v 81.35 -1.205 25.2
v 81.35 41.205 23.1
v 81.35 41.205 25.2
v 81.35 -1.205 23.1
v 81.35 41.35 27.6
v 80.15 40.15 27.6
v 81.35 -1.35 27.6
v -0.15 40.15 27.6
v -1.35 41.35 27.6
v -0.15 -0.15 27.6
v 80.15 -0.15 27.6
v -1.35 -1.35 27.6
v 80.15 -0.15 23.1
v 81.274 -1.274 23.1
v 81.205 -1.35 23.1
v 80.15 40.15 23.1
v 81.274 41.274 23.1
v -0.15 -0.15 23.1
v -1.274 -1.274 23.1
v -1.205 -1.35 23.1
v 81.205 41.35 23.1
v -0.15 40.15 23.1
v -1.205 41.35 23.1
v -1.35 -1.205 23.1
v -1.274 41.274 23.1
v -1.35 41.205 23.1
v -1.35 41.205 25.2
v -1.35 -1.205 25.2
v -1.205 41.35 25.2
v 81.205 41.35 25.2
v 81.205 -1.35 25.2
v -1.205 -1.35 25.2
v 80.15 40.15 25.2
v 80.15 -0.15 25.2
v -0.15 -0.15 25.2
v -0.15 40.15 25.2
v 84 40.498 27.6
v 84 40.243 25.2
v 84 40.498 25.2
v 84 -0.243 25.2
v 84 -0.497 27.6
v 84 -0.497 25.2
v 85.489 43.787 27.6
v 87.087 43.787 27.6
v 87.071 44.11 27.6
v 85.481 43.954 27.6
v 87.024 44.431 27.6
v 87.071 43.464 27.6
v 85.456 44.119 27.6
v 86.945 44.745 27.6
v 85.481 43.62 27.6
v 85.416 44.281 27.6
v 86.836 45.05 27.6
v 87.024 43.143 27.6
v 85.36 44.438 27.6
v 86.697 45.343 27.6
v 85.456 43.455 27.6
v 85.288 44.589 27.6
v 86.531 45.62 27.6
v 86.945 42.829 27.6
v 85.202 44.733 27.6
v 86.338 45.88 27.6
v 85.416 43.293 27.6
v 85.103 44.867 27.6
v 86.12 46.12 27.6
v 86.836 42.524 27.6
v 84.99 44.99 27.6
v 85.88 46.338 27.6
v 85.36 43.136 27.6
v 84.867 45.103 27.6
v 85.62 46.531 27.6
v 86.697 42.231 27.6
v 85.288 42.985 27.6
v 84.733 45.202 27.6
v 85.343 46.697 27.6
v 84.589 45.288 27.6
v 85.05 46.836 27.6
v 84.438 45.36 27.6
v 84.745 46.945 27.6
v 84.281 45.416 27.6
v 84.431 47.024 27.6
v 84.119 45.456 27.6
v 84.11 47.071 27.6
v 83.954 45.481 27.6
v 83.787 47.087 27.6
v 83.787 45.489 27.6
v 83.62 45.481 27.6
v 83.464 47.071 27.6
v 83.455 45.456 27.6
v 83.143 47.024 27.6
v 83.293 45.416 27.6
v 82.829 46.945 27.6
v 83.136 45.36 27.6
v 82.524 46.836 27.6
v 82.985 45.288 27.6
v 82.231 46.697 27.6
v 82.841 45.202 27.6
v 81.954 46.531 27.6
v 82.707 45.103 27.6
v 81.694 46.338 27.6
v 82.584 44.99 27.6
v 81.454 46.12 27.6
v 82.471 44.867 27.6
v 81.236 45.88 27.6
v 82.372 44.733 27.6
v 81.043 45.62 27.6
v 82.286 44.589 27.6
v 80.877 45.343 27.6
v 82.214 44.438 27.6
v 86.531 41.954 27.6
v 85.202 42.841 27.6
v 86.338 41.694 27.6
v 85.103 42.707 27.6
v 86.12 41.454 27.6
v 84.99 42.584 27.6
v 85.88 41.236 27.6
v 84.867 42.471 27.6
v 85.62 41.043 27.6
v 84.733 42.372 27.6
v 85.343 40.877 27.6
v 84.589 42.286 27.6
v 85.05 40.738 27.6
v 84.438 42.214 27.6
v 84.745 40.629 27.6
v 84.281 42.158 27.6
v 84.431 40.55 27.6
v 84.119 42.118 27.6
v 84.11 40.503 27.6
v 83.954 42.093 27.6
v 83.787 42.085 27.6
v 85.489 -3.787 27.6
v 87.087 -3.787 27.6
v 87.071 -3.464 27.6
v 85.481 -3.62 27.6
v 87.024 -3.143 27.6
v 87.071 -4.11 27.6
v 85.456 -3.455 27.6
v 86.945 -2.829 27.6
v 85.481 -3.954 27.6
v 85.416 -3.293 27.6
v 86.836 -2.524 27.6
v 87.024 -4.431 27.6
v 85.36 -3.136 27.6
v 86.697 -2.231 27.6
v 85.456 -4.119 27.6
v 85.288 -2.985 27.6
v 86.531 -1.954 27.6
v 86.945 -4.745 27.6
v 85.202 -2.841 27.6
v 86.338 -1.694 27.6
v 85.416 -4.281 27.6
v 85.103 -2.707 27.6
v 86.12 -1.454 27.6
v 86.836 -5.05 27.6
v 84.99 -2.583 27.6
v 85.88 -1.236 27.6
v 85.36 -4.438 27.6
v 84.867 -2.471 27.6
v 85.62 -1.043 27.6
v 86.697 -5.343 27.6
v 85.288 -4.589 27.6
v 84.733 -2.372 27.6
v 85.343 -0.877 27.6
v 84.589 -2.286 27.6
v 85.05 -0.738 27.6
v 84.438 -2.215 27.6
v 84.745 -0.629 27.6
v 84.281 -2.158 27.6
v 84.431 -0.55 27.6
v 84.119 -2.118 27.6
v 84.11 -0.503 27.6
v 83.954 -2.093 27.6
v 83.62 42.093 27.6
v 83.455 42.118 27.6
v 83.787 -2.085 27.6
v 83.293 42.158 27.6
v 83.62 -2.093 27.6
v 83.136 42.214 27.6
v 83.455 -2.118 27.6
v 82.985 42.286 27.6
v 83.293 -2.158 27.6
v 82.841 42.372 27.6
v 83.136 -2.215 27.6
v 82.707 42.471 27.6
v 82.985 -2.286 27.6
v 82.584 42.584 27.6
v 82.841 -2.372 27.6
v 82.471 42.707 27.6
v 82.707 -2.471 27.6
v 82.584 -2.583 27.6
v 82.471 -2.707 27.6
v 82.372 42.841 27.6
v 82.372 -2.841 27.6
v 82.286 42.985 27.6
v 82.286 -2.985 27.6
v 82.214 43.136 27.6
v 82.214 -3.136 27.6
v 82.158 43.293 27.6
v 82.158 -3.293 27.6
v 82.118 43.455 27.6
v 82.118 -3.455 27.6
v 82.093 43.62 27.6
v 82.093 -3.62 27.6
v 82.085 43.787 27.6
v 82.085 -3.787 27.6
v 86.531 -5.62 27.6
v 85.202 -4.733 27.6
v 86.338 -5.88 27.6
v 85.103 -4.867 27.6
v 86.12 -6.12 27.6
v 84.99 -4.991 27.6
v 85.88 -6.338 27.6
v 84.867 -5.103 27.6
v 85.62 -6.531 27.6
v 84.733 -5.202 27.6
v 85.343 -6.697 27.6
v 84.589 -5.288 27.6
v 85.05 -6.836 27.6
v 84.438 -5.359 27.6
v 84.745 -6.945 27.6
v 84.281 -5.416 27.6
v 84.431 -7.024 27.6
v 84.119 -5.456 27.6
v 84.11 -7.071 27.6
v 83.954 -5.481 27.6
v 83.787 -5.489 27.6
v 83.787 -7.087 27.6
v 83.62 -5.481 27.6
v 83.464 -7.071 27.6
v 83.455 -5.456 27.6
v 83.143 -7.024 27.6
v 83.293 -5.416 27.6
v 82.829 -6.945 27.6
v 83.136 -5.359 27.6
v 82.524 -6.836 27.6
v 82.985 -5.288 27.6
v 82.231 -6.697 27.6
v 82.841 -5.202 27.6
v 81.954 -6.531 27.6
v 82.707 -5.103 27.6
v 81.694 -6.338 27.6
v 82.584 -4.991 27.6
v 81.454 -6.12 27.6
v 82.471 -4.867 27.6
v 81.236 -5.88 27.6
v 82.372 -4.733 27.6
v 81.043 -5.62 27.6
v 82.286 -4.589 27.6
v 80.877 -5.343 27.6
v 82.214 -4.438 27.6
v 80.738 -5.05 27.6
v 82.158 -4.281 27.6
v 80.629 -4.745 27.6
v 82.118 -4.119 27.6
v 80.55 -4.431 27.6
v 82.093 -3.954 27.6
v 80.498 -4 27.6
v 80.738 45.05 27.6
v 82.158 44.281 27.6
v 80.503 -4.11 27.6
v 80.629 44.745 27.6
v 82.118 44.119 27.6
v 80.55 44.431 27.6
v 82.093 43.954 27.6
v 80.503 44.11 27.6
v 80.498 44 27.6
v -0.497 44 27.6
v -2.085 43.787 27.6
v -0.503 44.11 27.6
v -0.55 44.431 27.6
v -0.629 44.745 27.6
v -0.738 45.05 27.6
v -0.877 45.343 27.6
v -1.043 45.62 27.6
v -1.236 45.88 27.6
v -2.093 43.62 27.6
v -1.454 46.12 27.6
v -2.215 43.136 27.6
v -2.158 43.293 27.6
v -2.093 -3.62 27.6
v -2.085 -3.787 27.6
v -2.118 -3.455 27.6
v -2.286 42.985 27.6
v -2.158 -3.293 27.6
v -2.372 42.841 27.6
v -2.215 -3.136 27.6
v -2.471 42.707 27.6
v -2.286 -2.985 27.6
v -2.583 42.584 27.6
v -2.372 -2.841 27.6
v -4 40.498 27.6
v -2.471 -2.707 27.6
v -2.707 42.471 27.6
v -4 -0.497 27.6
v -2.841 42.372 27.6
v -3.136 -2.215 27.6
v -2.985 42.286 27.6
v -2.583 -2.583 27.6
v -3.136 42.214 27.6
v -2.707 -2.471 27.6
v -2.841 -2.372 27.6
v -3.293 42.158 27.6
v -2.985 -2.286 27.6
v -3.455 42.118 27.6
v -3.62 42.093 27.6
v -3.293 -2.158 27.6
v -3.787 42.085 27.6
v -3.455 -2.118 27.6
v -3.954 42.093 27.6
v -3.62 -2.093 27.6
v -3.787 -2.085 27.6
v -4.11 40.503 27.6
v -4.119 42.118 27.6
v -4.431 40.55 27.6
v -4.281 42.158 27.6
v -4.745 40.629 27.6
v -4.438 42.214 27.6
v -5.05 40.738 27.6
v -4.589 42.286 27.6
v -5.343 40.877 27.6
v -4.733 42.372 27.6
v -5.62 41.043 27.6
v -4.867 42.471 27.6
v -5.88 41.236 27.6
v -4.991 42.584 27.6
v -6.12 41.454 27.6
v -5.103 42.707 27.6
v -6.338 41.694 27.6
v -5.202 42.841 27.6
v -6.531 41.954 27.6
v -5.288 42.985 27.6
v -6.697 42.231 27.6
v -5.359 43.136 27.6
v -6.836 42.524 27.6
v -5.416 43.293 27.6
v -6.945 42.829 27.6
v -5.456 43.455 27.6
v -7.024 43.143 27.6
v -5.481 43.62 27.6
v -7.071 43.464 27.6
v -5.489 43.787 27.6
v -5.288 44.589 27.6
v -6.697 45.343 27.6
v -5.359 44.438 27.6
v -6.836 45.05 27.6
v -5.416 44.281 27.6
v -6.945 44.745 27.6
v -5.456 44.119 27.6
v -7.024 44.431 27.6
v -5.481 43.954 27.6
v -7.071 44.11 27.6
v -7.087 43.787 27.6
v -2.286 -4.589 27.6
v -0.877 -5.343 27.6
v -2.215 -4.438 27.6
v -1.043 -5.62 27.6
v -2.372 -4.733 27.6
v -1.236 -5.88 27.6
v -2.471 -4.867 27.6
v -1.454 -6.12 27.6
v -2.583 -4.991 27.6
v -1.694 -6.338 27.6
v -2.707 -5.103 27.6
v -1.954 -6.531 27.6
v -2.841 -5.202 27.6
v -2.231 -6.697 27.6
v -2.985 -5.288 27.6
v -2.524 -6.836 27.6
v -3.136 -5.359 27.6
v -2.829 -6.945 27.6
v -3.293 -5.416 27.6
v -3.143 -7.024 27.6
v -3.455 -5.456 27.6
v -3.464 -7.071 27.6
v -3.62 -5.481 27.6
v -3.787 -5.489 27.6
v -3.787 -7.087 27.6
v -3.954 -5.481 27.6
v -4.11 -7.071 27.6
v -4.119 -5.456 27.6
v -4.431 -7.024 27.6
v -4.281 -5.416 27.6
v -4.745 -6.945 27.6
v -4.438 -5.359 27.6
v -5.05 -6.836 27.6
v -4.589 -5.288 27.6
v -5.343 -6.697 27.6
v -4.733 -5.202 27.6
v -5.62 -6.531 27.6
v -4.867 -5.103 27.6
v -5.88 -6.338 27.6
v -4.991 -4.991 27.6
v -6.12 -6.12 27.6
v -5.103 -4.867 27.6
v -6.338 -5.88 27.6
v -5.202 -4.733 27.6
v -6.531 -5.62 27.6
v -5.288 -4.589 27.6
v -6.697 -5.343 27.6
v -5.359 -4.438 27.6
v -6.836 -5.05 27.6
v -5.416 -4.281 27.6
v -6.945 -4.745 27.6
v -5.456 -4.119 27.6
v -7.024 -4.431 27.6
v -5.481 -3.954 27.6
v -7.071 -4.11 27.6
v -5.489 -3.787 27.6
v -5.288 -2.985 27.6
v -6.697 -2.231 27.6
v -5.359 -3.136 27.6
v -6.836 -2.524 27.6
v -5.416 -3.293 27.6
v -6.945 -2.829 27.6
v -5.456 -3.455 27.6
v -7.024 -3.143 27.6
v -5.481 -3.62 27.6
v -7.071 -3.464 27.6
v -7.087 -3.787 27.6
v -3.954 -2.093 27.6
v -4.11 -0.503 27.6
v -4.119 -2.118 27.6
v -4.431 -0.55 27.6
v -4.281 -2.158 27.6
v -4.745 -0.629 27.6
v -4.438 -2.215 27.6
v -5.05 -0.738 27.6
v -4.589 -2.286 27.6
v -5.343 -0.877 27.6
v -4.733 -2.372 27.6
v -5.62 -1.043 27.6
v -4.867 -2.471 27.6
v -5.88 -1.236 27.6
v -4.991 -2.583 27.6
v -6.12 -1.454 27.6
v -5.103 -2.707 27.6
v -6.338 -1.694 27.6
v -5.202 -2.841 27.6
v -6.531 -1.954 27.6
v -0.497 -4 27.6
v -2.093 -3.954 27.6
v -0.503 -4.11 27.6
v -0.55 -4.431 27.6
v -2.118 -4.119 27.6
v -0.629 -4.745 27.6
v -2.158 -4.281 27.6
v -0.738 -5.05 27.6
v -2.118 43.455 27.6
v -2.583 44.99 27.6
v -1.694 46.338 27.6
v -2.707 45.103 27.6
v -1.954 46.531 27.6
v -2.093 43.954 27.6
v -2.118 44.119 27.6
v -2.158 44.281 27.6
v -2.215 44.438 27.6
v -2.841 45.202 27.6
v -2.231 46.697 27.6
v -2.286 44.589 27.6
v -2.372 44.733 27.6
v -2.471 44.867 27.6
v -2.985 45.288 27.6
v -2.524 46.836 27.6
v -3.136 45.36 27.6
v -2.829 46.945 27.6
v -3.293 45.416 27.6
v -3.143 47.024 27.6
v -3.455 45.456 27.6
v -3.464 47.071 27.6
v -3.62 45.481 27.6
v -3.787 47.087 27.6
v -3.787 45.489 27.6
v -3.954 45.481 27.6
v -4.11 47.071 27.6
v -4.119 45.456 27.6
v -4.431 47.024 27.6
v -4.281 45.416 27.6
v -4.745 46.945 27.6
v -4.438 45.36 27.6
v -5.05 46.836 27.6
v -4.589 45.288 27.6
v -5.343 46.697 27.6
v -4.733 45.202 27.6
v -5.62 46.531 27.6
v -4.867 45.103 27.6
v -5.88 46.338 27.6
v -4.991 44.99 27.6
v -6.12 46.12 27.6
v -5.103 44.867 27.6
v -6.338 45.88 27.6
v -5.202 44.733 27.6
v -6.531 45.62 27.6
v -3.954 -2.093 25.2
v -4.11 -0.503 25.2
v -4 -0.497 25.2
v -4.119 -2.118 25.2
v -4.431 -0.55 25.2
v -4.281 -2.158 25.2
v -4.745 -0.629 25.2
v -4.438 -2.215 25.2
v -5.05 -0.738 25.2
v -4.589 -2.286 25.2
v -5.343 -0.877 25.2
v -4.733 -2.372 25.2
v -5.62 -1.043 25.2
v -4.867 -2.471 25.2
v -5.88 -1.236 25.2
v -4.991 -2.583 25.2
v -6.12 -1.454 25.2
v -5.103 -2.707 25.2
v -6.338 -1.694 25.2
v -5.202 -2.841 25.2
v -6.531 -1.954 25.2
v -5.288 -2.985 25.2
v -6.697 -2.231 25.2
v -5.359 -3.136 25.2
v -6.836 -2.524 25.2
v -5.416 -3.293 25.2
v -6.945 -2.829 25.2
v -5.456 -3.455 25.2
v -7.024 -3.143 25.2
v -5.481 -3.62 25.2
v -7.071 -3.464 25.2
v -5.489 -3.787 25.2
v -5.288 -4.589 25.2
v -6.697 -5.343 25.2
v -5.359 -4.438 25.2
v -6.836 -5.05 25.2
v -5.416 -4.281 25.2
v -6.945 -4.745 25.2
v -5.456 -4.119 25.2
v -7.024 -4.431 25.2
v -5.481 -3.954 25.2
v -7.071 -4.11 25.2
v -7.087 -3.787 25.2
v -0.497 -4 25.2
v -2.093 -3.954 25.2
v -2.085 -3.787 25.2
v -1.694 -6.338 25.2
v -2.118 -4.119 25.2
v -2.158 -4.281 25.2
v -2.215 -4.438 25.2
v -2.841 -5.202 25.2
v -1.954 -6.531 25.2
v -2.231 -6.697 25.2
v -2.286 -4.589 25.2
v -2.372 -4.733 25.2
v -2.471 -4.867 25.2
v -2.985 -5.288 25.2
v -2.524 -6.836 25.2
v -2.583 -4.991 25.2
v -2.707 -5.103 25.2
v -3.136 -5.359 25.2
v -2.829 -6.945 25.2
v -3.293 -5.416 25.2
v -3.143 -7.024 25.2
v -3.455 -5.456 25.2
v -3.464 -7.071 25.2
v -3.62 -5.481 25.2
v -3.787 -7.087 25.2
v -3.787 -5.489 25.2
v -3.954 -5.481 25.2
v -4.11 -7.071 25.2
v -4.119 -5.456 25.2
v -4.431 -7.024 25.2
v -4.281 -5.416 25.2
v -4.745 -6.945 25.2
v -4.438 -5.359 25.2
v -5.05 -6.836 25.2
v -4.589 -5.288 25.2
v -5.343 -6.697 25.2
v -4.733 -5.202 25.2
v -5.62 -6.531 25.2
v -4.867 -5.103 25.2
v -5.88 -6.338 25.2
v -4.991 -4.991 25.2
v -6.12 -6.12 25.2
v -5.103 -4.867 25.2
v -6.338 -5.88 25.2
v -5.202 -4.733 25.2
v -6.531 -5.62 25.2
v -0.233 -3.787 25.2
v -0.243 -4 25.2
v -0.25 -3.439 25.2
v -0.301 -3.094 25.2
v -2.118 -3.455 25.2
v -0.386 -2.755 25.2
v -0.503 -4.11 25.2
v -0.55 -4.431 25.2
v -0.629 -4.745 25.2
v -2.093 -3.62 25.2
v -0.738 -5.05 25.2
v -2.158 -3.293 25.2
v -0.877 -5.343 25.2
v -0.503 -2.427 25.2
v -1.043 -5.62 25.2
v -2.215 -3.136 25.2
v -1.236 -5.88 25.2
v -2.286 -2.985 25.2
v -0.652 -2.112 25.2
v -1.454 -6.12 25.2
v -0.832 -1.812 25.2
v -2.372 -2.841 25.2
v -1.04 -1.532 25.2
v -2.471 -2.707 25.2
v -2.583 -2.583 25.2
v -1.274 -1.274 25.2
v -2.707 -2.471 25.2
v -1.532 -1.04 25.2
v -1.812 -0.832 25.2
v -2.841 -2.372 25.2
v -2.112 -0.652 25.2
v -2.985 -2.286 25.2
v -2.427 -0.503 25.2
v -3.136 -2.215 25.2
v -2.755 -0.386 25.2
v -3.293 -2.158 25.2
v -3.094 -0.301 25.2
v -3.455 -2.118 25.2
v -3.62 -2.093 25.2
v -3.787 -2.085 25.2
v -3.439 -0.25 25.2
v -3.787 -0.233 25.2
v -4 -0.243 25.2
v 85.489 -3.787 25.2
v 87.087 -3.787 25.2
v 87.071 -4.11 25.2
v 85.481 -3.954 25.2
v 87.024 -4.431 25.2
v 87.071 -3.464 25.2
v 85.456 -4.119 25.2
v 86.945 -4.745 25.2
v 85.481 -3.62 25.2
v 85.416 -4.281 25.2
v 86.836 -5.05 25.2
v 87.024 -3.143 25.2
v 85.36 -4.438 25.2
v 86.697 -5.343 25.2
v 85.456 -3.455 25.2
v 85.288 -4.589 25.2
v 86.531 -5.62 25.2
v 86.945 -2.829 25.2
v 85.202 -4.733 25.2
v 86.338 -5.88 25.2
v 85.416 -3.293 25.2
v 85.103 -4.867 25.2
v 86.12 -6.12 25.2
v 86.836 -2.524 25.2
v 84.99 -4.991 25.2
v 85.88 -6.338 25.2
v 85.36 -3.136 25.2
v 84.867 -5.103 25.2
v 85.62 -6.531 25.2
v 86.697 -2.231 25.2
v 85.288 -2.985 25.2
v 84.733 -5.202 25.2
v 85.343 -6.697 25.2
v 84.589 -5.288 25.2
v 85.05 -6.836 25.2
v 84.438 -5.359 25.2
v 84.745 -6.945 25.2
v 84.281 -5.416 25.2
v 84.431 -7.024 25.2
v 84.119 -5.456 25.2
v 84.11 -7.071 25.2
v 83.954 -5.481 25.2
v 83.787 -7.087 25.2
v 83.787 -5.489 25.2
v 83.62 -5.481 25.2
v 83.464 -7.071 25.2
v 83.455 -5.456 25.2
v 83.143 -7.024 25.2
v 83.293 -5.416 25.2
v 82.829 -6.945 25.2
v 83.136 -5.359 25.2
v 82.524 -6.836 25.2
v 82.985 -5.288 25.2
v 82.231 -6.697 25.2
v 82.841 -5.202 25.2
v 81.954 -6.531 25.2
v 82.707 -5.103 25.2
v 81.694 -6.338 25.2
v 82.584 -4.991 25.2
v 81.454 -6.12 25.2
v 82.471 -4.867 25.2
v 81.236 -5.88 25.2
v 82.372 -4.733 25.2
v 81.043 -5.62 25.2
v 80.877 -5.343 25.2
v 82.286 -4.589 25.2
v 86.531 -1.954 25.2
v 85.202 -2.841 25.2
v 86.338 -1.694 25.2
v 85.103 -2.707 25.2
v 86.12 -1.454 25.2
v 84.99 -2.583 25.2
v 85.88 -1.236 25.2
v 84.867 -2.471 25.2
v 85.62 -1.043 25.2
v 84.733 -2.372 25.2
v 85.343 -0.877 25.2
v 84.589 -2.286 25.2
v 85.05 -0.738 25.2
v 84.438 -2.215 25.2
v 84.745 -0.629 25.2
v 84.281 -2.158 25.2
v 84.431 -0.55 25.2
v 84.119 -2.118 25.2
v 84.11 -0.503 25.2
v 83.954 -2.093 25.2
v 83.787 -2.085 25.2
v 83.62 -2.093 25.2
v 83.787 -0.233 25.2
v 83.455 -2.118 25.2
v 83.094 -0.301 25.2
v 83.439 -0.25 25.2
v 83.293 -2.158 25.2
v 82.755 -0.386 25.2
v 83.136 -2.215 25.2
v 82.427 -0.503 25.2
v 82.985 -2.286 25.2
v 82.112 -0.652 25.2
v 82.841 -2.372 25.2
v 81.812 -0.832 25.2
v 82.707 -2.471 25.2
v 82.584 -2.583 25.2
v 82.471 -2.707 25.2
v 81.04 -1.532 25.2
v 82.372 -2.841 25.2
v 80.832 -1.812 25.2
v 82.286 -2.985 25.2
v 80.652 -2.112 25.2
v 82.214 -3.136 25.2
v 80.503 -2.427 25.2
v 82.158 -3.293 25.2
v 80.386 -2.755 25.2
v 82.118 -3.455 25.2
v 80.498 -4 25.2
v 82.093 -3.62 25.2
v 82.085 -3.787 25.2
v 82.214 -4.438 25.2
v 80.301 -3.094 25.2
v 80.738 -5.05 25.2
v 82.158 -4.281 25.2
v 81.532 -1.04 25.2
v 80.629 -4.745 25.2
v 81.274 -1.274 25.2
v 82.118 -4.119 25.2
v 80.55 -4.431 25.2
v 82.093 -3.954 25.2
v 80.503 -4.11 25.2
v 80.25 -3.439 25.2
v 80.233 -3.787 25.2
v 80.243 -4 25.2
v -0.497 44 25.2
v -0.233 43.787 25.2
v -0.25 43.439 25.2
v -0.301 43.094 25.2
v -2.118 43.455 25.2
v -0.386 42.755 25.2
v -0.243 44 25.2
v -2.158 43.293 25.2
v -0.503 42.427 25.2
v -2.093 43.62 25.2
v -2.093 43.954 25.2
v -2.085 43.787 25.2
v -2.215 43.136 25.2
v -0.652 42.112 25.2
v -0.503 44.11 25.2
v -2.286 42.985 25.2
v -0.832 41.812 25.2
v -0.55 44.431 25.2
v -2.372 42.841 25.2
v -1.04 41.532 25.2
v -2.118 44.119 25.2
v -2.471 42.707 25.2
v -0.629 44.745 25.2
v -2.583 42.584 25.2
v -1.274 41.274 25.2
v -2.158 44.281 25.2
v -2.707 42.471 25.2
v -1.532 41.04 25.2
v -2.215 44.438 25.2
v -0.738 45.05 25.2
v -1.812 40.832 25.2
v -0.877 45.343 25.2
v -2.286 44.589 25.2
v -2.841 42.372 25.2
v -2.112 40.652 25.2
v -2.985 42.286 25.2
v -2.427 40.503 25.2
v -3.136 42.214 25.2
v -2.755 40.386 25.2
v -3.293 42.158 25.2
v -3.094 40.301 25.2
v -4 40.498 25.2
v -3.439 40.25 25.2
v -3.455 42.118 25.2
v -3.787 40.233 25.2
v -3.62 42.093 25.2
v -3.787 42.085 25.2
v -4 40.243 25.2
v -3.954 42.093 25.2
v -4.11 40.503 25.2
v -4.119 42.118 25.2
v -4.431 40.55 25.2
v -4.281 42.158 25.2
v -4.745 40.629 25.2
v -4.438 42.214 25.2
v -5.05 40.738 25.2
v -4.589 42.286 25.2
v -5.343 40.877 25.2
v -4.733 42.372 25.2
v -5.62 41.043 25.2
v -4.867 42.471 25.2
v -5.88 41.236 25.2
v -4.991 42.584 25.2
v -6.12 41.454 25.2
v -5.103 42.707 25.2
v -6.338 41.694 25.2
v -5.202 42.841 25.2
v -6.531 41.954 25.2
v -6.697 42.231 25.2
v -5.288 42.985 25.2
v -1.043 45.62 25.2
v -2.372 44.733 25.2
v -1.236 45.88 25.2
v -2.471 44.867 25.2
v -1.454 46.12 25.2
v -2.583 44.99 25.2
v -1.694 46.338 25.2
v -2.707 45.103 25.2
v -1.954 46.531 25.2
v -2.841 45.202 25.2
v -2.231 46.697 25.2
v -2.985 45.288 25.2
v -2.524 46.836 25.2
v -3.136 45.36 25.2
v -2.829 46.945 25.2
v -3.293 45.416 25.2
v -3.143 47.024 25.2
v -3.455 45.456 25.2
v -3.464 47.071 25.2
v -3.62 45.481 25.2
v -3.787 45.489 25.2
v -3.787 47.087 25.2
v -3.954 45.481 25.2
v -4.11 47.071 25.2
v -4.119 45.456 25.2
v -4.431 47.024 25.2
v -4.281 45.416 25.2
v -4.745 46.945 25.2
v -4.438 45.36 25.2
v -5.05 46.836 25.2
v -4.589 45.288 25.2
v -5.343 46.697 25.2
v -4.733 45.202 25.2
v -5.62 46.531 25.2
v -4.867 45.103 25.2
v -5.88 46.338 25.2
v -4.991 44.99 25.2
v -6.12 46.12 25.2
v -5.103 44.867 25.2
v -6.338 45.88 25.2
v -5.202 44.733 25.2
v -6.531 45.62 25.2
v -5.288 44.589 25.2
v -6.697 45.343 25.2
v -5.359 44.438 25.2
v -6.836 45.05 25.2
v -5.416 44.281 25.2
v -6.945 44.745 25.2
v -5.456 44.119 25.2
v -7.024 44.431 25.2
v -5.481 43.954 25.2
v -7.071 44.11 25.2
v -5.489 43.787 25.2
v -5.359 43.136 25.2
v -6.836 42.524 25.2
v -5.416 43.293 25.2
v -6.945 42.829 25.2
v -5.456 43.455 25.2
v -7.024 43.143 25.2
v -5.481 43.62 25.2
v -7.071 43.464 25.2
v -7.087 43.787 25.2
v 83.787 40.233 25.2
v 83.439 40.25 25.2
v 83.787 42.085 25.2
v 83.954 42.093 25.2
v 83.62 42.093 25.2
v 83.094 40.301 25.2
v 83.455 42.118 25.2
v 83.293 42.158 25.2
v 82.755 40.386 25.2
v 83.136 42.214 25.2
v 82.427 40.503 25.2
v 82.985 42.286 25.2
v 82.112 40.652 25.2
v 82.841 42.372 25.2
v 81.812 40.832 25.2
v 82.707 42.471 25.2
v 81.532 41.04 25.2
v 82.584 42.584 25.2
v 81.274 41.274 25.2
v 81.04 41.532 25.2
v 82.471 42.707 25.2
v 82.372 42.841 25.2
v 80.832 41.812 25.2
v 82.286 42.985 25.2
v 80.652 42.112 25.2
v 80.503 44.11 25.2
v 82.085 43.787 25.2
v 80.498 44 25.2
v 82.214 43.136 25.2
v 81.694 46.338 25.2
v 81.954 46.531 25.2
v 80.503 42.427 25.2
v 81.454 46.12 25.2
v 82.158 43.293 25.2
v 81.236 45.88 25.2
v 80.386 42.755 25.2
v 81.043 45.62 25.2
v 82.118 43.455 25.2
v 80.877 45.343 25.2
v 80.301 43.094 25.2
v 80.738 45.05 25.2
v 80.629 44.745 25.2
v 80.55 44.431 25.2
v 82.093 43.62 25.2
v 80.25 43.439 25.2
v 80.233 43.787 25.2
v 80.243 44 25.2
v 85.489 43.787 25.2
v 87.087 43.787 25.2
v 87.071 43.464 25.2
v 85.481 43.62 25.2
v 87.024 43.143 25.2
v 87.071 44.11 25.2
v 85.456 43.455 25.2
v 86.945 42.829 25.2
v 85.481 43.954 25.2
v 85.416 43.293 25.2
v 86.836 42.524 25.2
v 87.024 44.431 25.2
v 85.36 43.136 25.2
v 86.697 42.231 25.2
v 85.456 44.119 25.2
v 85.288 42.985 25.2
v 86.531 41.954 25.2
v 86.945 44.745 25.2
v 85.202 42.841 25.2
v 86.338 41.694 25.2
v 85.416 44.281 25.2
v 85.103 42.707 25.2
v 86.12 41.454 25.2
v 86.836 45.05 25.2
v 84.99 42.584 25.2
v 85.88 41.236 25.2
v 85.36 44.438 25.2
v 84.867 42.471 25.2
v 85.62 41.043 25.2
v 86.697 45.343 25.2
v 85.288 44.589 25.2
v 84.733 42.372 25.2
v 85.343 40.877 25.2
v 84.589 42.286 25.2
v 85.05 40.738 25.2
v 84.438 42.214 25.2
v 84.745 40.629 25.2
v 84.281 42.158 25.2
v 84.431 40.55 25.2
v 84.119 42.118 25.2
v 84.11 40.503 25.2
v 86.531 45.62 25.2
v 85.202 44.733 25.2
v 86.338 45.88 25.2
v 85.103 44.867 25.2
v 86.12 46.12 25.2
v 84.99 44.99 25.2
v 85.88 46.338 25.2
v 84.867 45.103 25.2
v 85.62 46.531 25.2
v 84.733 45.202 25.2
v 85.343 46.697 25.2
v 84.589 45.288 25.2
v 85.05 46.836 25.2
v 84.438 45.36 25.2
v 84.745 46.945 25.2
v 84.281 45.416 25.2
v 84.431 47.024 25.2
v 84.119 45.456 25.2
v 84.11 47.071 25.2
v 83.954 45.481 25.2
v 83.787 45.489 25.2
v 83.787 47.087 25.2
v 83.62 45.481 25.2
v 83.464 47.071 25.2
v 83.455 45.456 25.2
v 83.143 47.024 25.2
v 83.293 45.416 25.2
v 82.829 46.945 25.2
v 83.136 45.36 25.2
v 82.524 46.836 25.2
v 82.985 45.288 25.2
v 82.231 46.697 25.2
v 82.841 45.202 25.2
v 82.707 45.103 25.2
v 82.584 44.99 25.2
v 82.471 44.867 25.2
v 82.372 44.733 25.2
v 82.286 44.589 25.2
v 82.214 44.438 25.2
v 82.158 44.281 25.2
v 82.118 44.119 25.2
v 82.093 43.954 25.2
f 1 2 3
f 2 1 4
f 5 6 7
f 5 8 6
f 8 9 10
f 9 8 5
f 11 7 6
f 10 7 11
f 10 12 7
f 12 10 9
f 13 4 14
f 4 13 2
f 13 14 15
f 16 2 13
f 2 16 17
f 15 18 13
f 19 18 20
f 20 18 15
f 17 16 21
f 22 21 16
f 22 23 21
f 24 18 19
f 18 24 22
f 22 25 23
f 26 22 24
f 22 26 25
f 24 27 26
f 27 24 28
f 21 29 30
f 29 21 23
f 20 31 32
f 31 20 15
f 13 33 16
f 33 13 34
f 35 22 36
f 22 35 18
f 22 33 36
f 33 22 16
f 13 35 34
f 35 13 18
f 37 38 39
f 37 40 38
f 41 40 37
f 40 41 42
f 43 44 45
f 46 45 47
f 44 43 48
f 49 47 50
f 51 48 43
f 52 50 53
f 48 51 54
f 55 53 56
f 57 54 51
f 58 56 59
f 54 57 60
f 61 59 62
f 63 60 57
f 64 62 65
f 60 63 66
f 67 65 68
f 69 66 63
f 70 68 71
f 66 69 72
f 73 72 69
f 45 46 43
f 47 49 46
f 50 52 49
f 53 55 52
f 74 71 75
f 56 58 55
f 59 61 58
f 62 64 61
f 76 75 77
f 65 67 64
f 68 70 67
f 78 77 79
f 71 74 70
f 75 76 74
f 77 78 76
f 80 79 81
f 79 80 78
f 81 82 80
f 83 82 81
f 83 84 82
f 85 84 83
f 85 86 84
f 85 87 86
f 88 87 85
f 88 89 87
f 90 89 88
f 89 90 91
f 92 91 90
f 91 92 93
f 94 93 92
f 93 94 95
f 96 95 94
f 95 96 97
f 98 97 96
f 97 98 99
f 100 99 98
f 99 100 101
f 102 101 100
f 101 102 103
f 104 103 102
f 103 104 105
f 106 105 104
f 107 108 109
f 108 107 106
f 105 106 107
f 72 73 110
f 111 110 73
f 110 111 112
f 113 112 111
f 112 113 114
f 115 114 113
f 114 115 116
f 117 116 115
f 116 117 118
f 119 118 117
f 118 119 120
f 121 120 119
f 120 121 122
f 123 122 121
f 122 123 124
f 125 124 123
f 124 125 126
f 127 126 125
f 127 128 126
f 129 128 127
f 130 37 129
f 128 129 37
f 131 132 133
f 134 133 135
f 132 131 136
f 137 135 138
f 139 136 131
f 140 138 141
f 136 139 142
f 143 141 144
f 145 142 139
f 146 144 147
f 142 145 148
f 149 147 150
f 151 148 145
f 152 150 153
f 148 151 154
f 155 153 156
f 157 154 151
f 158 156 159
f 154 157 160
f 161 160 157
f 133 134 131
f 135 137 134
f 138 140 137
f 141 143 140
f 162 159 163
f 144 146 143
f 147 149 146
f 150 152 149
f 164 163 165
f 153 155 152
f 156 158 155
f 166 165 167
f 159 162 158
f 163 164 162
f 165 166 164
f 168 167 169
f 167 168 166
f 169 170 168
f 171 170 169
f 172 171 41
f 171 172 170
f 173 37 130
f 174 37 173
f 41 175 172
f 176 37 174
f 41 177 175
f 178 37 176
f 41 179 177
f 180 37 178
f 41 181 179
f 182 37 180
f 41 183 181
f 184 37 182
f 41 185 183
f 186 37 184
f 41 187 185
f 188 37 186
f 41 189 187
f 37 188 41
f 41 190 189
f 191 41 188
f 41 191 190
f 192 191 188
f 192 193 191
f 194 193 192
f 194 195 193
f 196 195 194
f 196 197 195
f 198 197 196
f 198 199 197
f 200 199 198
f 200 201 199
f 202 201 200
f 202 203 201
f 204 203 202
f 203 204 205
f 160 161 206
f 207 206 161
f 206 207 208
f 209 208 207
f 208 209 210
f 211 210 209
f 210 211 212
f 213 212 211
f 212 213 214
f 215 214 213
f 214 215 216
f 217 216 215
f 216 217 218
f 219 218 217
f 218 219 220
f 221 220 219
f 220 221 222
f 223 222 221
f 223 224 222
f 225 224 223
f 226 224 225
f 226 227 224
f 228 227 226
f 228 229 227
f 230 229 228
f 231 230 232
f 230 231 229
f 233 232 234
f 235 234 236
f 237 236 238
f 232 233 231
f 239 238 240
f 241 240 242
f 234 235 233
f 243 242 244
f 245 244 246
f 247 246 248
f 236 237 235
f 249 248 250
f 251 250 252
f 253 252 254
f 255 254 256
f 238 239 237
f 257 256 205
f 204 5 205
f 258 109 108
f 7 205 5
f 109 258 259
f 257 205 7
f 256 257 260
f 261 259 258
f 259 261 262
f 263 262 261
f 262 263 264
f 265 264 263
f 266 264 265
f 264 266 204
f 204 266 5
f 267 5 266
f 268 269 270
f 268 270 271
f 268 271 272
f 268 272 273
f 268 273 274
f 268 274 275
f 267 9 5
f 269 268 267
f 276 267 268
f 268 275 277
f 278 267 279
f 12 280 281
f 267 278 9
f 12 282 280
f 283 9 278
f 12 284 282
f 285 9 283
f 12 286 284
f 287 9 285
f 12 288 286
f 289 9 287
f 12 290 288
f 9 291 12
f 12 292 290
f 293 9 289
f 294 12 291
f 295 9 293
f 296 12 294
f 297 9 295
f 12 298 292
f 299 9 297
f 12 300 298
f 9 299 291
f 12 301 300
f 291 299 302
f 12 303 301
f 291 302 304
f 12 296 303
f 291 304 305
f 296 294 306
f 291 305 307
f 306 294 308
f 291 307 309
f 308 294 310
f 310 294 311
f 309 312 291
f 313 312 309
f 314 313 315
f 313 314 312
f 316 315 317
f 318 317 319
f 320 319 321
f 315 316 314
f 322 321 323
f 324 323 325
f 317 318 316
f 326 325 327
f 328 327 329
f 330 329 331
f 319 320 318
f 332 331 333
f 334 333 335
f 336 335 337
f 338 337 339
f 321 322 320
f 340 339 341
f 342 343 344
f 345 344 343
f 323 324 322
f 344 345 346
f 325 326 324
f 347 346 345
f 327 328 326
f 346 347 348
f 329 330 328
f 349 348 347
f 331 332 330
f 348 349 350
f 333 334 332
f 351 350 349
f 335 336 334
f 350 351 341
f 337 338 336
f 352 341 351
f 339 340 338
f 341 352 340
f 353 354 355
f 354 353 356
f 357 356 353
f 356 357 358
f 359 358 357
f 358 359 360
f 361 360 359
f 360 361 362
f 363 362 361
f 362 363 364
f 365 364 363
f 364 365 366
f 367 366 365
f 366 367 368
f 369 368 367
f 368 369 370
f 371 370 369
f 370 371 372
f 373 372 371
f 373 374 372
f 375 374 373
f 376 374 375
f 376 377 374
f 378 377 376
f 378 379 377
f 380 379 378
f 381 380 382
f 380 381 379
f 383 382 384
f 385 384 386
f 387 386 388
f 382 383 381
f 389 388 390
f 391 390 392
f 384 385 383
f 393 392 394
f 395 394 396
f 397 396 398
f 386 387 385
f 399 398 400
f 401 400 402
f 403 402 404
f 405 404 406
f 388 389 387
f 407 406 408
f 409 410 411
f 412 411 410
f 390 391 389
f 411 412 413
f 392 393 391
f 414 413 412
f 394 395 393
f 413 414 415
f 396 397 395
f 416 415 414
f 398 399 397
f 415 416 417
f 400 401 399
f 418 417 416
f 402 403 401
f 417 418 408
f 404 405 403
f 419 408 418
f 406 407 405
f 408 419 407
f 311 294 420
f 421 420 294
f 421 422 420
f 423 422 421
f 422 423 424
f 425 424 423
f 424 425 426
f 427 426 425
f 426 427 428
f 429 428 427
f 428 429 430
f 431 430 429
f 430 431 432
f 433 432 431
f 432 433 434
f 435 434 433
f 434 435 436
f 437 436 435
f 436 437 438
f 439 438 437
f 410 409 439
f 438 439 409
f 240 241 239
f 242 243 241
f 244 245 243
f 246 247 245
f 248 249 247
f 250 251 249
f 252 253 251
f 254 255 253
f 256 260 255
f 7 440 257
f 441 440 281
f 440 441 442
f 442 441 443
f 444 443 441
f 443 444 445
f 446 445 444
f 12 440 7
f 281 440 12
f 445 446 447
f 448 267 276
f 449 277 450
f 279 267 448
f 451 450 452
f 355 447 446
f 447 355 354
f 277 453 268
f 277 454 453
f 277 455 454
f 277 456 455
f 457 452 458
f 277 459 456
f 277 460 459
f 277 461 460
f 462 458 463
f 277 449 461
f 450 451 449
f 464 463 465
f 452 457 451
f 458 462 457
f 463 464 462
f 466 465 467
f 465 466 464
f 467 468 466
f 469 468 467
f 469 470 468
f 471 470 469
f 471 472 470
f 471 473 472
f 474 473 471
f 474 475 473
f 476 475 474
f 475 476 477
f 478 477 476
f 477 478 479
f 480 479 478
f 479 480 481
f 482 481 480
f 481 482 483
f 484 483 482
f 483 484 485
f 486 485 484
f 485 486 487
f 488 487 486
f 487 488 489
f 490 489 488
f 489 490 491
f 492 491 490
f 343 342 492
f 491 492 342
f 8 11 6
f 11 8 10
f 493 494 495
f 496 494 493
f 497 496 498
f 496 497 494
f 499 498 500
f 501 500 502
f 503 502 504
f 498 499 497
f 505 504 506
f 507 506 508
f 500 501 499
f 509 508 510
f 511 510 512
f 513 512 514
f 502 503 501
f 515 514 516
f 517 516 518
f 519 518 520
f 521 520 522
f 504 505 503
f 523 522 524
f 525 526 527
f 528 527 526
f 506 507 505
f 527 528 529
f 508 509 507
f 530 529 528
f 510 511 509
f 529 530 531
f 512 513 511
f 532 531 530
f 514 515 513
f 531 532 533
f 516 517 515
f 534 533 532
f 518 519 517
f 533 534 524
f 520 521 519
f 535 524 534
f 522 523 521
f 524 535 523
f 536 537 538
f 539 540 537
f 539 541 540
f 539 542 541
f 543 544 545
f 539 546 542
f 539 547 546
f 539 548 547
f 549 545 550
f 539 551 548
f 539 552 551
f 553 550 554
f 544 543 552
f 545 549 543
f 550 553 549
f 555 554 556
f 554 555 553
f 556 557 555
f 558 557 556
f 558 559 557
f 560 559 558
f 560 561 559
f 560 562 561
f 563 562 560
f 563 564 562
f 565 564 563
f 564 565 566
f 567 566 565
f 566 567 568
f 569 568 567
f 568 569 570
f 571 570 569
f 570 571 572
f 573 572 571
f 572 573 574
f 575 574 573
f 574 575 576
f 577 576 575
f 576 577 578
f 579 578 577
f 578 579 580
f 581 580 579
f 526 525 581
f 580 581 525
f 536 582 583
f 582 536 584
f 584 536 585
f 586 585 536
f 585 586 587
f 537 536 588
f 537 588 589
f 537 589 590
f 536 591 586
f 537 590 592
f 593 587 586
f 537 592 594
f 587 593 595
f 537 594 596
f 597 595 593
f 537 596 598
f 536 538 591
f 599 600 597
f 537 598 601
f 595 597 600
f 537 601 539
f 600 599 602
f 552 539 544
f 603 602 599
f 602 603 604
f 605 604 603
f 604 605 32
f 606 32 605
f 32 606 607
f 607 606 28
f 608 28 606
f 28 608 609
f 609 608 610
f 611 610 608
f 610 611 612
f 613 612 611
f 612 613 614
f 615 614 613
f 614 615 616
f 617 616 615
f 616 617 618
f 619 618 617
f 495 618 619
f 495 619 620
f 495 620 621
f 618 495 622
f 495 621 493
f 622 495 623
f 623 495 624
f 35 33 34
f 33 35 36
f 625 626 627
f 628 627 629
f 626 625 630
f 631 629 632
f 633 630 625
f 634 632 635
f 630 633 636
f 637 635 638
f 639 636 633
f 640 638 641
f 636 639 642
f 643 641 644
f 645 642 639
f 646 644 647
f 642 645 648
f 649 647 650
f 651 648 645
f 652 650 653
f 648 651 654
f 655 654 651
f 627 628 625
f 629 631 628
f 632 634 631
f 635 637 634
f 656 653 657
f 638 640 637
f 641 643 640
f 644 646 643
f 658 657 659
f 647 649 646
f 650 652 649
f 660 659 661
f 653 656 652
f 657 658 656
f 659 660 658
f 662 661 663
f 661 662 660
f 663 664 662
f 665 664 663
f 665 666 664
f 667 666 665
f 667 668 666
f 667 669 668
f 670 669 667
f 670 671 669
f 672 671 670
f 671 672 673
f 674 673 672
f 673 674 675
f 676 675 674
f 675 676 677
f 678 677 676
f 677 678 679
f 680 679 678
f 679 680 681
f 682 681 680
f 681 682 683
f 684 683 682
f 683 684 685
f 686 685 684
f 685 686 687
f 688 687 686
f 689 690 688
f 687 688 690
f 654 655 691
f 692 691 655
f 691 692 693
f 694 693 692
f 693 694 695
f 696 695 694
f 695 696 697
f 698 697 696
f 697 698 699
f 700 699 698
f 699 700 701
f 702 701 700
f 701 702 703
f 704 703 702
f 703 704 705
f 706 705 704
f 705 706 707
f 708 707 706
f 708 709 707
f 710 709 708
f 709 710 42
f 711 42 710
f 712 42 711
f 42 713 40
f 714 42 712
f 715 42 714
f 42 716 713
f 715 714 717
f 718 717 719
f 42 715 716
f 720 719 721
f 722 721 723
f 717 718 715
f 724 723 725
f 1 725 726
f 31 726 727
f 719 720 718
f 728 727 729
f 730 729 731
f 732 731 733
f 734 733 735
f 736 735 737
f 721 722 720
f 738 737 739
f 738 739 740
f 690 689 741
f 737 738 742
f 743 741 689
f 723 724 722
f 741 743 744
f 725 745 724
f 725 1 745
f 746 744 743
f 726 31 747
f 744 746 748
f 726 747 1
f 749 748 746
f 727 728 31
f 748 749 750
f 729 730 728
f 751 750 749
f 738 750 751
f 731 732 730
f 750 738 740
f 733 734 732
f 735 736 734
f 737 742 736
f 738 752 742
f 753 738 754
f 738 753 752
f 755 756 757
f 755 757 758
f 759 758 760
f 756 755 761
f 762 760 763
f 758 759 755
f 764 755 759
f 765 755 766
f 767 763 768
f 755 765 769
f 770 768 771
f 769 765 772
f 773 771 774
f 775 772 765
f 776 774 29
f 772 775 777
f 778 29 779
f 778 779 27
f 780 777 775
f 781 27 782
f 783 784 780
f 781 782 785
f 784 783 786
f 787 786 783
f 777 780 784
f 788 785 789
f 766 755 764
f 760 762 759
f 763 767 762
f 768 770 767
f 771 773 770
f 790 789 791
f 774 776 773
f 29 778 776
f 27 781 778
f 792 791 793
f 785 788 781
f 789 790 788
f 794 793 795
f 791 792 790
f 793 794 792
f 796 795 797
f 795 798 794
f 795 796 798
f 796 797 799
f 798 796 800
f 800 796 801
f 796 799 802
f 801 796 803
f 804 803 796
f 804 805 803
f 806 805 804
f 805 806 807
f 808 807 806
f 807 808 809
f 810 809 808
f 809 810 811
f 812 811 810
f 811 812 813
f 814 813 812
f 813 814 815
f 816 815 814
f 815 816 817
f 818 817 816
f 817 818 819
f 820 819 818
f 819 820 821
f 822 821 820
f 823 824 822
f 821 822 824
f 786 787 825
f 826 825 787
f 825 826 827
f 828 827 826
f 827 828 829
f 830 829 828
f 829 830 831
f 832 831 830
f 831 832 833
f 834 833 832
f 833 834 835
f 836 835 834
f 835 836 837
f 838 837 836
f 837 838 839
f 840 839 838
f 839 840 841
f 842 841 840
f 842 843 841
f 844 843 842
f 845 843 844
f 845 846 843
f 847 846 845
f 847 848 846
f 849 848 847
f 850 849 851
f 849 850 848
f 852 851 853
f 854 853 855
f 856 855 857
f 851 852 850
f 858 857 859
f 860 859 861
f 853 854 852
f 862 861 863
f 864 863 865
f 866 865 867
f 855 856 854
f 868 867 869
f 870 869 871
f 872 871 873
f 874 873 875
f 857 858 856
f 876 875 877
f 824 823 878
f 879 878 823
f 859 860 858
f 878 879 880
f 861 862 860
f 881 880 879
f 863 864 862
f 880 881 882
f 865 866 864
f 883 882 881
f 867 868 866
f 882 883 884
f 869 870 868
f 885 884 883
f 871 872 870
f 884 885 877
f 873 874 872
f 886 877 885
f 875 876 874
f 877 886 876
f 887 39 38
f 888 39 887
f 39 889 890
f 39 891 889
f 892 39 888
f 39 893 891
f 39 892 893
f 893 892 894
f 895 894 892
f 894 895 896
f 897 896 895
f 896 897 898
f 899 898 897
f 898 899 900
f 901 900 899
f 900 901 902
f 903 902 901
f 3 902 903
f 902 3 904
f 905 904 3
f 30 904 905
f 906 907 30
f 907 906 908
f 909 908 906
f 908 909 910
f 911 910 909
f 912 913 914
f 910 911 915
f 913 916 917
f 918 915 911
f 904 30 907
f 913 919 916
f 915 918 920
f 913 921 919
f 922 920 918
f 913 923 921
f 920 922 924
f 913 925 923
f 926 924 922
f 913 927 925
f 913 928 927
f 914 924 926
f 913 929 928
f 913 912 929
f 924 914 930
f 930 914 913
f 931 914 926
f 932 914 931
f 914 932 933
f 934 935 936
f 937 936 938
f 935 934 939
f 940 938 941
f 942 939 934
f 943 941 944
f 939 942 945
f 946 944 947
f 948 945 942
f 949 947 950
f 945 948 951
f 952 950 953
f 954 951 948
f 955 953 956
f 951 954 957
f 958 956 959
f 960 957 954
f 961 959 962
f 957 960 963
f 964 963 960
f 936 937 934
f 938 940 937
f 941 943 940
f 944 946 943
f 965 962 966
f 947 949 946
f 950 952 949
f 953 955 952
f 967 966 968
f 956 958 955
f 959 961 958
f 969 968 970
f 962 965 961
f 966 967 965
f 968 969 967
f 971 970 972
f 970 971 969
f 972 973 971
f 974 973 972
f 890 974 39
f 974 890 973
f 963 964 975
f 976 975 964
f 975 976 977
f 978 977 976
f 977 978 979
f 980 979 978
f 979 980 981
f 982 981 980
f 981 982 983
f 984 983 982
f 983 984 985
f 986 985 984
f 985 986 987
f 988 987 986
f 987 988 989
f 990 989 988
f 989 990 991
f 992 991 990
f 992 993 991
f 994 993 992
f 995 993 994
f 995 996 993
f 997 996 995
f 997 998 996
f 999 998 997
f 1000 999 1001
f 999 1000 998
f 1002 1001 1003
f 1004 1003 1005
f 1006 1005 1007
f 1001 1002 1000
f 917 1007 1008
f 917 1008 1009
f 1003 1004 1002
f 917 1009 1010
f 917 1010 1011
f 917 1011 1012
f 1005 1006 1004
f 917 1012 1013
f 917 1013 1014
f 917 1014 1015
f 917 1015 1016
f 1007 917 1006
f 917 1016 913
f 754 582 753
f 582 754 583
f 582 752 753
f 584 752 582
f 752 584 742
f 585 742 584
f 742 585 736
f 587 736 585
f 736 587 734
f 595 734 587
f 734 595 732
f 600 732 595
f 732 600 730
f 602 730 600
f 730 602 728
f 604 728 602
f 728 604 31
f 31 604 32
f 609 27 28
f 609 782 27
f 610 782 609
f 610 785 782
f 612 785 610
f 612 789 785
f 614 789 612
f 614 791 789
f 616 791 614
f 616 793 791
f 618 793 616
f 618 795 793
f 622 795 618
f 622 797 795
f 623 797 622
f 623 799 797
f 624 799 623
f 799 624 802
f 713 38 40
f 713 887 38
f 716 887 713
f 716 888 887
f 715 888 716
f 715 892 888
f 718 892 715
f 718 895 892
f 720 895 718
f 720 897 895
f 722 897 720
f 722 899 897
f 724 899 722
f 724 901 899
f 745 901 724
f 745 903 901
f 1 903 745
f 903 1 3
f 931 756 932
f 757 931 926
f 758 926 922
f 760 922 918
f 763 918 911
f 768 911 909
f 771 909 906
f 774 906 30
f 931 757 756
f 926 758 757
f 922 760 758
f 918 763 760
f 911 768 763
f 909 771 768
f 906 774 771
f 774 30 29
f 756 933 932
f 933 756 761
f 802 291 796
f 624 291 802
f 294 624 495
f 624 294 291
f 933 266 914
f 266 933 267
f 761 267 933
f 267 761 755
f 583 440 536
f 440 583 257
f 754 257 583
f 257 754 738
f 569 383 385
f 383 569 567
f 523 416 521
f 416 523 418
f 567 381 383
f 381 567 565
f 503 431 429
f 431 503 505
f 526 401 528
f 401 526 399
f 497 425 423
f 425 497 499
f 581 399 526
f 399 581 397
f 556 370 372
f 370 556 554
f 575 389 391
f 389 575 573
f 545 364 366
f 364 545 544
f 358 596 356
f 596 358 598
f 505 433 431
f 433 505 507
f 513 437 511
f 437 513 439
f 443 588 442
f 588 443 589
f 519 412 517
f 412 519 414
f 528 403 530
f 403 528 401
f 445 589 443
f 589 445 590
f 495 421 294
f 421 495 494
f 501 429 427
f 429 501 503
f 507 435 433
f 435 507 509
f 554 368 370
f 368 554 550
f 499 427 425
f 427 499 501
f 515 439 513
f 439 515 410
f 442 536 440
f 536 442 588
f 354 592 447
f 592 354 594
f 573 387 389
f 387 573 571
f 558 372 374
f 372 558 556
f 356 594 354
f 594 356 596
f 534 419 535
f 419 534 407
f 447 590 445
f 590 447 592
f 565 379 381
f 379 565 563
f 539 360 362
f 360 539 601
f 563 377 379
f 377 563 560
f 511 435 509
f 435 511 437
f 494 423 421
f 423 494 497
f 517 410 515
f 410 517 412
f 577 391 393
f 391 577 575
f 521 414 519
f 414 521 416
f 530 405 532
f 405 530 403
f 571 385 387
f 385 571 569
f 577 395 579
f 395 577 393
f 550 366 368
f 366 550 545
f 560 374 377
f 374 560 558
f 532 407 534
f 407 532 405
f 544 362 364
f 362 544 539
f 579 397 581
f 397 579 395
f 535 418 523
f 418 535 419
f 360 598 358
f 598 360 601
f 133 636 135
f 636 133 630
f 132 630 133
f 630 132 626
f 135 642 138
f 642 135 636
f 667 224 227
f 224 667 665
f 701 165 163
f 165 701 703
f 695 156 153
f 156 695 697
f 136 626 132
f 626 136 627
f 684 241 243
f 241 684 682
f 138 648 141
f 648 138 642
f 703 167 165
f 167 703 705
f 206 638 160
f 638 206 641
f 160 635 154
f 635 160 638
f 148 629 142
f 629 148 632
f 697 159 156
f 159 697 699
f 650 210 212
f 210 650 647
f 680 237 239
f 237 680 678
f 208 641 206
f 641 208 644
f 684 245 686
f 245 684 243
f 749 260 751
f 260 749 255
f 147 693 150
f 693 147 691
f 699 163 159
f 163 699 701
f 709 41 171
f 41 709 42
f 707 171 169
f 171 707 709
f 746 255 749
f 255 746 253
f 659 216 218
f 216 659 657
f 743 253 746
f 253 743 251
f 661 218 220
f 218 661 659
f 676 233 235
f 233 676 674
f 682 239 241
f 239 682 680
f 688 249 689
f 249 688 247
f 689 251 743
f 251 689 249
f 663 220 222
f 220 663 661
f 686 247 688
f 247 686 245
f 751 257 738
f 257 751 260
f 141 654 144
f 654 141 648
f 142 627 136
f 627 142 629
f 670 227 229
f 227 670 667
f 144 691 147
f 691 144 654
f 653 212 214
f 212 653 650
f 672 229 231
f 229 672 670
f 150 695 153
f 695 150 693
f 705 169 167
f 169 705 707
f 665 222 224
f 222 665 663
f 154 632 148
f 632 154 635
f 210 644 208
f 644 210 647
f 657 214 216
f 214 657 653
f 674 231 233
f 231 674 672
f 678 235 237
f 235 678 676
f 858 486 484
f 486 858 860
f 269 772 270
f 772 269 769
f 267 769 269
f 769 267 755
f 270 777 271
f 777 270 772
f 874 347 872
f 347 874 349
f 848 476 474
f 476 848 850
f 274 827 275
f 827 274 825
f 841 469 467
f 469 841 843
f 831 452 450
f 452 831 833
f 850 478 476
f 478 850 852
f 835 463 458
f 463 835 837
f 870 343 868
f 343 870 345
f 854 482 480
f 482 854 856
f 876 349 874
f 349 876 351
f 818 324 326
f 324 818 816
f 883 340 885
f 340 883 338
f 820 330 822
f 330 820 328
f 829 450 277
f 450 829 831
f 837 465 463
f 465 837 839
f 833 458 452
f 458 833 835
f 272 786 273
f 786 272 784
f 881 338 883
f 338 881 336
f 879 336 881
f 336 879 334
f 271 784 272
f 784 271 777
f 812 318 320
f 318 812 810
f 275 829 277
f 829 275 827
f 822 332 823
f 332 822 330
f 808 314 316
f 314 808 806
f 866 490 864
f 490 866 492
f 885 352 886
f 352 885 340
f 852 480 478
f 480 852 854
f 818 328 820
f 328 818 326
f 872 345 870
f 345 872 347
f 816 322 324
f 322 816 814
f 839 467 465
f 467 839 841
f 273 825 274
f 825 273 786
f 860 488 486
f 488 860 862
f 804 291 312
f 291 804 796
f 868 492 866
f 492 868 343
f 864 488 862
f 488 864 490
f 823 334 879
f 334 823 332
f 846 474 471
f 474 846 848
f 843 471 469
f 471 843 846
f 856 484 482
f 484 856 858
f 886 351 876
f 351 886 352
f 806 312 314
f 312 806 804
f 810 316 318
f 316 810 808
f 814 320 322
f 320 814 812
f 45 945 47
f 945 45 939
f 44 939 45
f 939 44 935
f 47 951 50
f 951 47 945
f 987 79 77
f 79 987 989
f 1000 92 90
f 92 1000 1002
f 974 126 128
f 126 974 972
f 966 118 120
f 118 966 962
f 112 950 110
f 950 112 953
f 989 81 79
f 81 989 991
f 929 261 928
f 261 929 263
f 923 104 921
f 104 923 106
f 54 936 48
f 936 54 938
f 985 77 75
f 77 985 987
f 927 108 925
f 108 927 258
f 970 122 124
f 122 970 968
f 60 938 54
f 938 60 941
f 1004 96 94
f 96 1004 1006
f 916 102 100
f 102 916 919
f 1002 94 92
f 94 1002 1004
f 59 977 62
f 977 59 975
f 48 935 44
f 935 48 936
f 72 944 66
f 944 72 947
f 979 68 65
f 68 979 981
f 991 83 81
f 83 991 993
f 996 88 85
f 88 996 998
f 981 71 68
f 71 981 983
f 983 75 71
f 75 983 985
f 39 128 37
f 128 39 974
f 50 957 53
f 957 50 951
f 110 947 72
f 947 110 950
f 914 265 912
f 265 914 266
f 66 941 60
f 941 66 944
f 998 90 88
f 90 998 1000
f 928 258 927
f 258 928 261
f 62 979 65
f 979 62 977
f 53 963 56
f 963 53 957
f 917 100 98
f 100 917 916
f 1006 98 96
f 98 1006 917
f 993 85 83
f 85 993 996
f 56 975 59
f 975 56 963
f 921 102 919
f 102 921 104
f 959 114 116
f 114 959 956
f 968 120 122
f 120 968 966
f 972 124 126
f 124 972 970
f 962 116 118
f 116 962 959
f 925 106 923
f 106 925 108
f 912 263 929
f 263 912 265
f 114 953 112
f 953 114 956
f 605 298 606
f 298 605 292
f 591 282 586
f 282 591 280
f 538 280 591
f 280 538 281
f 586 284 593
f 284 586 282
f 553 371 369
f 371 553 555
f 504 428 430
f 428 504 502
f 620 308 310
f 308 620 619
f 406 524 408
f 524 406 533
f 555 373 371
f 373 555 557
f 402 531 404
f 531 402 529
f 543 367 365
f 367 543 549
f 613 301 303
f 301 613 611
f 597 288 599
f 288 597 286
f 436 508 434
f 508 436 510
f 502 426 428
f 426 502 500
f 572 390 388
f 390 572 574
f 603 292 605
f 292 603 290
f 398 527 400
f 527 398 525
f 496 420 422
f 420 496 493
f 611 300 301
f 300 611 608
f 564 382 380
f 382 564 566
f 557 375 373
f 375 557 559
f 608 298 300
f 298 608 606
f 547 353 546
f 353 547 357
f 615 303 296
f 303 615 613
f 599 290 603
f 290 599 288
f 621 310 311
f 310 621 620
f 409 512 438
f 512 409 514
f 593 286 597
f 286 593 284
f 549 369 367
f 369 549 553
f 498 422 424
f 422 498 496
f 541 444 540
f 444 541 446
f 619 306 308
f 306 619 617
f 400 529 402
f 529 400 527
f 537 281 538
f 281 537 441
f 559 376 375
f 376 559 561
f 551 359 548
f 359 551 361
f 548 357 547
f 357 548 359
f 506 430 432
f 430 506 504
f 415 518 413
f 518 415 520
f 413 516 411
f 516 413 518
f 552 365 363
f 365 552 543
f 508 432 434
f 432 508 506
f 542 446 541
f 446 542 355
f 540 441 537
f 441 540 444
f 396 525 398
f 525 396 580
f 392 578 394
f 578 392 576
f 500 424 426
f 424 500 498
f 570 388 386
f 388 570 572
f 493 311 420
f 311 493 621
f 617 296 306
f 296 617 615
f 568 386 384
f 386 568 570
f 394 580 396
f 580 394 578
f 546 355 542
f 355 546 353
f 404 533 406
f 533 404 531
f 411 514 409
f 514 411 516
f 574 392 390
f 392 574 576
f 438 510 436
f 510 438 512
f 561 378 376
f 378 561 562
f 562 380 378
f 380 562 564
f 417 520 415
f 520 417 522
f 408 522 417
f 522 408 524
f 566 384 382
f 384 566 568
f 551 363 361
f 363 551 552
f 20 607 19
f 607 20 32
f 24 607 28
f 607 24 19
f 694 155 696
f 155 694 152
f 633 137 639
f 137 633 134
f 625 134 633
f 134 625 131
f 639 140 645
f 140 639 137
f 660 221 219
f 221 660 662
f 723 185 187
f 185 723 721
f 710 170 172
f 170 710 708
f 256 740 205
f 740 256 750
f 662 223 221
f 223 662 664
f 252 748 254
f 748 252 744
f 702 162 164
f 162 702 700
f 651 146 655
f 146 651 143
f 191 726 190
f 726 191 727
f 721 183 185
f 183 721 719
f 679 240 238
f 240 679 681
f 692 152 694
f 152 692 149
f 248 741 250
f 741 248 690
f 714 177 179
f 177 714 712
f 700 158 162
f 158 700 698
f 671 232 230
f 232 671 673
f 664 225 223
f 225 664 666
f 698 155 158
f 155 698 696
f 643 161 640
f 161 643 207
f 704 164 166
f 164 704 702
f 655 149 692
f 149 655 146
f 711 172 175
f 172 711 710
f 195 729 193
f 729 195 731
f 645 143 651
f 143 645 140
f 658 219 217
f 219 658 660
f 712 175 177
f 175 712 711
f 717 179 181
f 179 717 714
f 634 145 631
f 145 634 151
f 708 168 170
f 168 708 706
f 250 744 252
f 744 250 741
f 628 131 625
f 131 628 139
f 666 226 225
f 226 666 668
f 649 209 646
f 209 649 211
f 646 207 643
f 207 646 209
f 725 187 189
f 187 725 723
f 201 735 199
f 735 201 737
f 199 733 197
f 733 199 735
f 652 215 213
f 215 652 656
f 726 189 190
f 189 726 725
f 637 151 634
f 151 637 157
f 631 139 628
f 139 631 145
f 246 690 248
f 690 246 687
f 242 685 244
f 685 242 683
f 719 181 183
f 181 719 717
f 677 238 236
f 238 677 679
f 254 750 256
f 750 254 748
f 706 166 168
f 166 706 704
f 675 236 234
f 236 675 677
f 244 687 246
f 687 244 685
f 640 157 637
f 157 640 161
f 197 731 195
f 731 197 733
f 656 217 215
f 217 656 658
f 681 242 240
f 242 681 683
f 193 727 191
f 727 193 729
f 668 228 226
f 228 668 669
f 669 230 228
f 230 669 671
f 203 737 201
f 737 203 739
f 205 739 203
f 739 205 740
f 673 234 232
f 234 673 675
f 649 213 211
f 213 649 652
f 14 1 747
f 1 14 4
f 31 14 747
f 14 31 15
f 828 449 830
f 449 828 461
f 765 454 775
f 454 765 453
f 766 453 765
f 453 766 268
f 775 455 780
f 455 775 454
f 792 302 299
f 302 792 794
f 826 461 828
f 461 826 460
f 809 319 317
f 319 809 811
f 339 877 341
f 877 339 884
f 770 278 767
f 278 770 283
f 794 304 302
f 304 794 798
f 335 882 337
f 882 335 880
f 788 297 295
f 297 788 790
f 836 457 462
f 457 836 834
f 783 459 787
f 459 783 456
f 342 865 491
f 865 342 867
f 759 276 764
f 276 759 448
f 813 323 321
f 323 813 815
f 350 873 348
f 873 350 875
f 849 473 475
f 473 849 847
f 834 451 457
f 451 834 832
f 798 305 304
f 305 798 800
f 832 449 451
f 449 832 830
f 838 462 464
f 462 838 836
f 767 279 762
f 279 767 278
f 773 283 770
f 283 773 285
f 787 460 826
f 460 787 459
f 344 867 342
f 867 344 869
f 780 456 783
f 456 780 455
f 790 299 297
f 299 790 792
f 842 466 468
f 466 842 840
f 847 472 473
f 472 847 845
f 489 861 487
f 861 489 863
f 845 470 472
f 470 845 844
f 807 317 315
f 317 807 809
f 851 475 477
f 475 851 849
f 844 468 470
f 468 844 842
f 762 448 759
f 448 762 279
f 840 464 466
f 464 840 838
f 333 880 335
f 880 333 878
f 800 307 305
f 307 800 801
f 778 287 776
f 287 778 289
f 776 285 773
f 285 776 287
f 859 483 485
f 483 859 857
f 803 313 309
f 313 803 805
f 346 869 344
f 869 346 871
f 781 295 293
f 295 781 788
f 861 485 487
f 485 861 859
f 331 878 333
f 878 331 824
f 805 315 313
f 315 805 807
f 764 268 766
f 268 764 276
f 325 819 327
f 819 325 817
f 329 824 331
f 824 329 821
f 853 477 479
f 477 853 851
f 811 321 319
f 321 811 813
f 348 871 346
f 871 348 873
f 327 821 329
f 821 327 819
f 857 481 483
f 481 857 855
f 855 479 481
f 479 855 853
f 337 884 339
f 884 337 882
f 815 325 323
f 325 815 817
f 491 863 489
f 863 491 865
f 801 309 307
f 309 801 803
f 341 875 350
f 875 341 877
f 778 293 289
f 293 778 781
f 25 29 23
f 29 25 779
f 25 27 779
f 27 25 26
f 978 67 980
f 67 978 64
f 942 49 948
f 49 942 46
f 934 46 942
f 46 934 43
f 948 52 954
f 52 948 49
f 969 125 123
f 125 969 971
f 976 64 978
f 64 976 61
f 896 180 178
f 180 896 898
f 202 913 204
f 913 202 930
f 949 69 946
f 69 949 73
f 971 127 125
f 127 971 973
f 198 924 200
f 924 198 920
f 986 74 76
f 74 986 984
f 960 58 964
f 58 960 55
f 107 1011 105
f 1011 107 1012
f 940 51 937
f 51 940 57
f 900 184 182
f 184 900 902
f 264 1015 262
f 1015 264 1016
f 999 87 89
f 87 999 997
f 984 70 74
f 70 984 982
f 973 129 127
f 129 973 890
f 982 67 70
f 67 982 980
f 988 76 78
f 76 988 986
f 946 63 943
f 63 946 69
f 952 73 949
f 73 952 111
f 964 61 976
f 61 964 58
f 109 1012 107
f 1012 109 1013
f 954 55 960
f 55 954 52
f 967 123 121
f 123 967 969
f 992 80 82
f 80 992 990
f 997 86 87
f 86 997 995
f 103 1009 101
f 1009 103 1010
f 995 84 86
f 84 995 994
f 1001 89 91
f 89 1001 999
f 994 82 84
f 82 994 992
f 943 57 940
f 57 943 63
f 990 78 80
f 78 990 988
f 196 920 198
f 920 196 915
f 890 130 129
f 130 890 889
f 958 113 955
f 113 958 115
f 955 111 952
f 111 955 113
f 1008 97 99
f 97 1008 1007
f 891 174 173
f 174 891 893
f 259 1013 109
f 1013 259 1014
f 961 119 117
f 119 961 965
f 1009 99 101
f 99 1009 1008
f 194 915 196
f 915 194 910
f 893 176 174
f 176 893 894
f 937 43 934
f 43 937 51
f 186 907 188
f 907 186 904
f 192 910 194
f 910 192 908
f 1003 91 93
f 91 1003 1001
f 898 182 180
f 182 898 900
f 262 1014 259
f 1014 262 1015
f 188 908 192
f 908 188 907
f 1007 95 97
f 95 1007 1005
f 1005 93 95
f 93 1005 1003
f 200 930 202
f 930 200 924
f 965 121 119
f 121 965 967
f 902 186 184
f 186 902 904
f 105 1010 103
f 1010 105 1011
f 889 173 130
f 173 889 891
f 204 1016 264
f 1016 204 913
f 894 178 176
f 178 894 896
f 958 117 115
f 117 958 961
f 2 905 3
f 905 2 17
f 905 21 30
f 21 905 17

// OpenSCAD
// body lid
difference() {
  union() {
    // body lid (lid_plate)
    multmatrix([[1, 0, 0, 40], [0, 1, 0, 20], [0, 0, 1, 25.2], [0, 0, 0, 1]]) translate([-44, -24, 0]) cube([88, 48, 2.4]);
    // add lid_lip (lip)
    multmatrix([[1, 0, 0, 40], [0, 1, 0, 20], [0, 0, 1, 23.1], [0, 0, 0, 1]]) difference() { translate([-41.35, -21.35, 0]) cube([82.7, 42.7, 4.5]); translate([0, 0, -1]) translate([-40.15, -20.15, 0]) cube([80.3, 40.3, 6.5]); }
    // add boss_1_pad (pad)
    multmatrix([[1, 0, 0, -3.787006], [0, 1, 0, -3.787006], [0, 0, 1, 25.2], [0, 0, 0, 1]]) cylinder(h=2.4, d=6.6, $fn=64);
    // add boss_2_pad (pad)
    multmatrix([[1, 0, 0, 83.787006], [0, 1, 0, -3.787006], [0, 0, 1, 25.2], [0, 0, 0, 1]]) cylinder(h=2.4, d=6.6, $fn=64);
    // add boss_3_pad (pad)
    multmatrix([[1, 0, 0, -3.787006], [0, 1, 0, 43.787006], [0, 0, 1, 25.2], [0, 0, 0, 1]]) cylinder(h=2.4, d=6.6, $fn=64);
    // add boss_4_pad (pad)
    multmatrix([[1, 0, 0, 83.787006], [0, 1, 0, 43.787006], [0, 0, 1, 25.2], [0, 0, 0, 1]]) cylinder(h=2.4, d=6.6, $fn=64);
  }
  // cut boss_1_lid_hole (screw_hole)
  multmatrix([[1, 0, 0, -3.787006], [0, 1, 0, -3.787006], [0, 0, 1, 24.2], [0, 0, 0, 1]]) cylinder(h=4.4, d=3.4041, $fn=64);
  // cut boss_1_lip_notch (lip_notch)
  multmatrix([[1, 0, 0, -3.787006], [0, 1, 0, -3.787006], [0, 0, 1, 22.1], [0, 0, 0, 1]]) cylinder(h=3.1, d=7.108563, $fn=64);
  // cut boss_2_lid_hole (screw_hole)
  multmatrix([[1, 0, 0, 83.787006], [0, 1, 0, -3.787006], [0, 0, 1, 24.2], [0, 0, 0, 1]]) cylinder(h=4.4, d=3.4041, $fn=64);
  // cut boss_2_lip_notch (lip_notch)
  multmatrix([[1, 0, 0, 83.787006], [0, 1, 0, -3.787006], [0, 0, 1, 22.1], [0, 0, 0, 1]]) cylinder(h=3.1, d=7.108563, $fn=64);
  // cut boss_3_lid_hole (screw_hole)
  multmatrix([[1, 0, 0, -3.787006], [0, 1, 0, 43.787006], [0, 0, 1, 24.2], [0, 0, 0, 1]]) cylinder(h=4.4, d=3.4041, $fn=64);
  // cut boss_3_lip_notch (lip_notch)
  multmatrix([[1, 0, 0, -3.787006], [0, 1, 0, 43.787006], [0, 0, 1, 22.1], [0, 0, 0, 1]]) cylinder(h=3.1, d=7.108563, $fn=64);
  // cut boss_4_lid_hole (screw_hole)
  multmatrix([[1, 0, 0, 83.787006], [0, 1, 0, 43.787006], [0, 0, 1, 24.2], [0, 0, 0, 1]]) cylinder(h=4.4, d=3.4041, $fn=64);
  // cut boss_4_lip_notch (lip_notch)
  multmatrix([[1, 0, 0, 83.787006], [0, 1, 0, 43.787006], [0, 0, 1, 22.1], [0, 0, 0, 1]]) cylinder(h=3.1, d=7.108563, $fn=64);
}
